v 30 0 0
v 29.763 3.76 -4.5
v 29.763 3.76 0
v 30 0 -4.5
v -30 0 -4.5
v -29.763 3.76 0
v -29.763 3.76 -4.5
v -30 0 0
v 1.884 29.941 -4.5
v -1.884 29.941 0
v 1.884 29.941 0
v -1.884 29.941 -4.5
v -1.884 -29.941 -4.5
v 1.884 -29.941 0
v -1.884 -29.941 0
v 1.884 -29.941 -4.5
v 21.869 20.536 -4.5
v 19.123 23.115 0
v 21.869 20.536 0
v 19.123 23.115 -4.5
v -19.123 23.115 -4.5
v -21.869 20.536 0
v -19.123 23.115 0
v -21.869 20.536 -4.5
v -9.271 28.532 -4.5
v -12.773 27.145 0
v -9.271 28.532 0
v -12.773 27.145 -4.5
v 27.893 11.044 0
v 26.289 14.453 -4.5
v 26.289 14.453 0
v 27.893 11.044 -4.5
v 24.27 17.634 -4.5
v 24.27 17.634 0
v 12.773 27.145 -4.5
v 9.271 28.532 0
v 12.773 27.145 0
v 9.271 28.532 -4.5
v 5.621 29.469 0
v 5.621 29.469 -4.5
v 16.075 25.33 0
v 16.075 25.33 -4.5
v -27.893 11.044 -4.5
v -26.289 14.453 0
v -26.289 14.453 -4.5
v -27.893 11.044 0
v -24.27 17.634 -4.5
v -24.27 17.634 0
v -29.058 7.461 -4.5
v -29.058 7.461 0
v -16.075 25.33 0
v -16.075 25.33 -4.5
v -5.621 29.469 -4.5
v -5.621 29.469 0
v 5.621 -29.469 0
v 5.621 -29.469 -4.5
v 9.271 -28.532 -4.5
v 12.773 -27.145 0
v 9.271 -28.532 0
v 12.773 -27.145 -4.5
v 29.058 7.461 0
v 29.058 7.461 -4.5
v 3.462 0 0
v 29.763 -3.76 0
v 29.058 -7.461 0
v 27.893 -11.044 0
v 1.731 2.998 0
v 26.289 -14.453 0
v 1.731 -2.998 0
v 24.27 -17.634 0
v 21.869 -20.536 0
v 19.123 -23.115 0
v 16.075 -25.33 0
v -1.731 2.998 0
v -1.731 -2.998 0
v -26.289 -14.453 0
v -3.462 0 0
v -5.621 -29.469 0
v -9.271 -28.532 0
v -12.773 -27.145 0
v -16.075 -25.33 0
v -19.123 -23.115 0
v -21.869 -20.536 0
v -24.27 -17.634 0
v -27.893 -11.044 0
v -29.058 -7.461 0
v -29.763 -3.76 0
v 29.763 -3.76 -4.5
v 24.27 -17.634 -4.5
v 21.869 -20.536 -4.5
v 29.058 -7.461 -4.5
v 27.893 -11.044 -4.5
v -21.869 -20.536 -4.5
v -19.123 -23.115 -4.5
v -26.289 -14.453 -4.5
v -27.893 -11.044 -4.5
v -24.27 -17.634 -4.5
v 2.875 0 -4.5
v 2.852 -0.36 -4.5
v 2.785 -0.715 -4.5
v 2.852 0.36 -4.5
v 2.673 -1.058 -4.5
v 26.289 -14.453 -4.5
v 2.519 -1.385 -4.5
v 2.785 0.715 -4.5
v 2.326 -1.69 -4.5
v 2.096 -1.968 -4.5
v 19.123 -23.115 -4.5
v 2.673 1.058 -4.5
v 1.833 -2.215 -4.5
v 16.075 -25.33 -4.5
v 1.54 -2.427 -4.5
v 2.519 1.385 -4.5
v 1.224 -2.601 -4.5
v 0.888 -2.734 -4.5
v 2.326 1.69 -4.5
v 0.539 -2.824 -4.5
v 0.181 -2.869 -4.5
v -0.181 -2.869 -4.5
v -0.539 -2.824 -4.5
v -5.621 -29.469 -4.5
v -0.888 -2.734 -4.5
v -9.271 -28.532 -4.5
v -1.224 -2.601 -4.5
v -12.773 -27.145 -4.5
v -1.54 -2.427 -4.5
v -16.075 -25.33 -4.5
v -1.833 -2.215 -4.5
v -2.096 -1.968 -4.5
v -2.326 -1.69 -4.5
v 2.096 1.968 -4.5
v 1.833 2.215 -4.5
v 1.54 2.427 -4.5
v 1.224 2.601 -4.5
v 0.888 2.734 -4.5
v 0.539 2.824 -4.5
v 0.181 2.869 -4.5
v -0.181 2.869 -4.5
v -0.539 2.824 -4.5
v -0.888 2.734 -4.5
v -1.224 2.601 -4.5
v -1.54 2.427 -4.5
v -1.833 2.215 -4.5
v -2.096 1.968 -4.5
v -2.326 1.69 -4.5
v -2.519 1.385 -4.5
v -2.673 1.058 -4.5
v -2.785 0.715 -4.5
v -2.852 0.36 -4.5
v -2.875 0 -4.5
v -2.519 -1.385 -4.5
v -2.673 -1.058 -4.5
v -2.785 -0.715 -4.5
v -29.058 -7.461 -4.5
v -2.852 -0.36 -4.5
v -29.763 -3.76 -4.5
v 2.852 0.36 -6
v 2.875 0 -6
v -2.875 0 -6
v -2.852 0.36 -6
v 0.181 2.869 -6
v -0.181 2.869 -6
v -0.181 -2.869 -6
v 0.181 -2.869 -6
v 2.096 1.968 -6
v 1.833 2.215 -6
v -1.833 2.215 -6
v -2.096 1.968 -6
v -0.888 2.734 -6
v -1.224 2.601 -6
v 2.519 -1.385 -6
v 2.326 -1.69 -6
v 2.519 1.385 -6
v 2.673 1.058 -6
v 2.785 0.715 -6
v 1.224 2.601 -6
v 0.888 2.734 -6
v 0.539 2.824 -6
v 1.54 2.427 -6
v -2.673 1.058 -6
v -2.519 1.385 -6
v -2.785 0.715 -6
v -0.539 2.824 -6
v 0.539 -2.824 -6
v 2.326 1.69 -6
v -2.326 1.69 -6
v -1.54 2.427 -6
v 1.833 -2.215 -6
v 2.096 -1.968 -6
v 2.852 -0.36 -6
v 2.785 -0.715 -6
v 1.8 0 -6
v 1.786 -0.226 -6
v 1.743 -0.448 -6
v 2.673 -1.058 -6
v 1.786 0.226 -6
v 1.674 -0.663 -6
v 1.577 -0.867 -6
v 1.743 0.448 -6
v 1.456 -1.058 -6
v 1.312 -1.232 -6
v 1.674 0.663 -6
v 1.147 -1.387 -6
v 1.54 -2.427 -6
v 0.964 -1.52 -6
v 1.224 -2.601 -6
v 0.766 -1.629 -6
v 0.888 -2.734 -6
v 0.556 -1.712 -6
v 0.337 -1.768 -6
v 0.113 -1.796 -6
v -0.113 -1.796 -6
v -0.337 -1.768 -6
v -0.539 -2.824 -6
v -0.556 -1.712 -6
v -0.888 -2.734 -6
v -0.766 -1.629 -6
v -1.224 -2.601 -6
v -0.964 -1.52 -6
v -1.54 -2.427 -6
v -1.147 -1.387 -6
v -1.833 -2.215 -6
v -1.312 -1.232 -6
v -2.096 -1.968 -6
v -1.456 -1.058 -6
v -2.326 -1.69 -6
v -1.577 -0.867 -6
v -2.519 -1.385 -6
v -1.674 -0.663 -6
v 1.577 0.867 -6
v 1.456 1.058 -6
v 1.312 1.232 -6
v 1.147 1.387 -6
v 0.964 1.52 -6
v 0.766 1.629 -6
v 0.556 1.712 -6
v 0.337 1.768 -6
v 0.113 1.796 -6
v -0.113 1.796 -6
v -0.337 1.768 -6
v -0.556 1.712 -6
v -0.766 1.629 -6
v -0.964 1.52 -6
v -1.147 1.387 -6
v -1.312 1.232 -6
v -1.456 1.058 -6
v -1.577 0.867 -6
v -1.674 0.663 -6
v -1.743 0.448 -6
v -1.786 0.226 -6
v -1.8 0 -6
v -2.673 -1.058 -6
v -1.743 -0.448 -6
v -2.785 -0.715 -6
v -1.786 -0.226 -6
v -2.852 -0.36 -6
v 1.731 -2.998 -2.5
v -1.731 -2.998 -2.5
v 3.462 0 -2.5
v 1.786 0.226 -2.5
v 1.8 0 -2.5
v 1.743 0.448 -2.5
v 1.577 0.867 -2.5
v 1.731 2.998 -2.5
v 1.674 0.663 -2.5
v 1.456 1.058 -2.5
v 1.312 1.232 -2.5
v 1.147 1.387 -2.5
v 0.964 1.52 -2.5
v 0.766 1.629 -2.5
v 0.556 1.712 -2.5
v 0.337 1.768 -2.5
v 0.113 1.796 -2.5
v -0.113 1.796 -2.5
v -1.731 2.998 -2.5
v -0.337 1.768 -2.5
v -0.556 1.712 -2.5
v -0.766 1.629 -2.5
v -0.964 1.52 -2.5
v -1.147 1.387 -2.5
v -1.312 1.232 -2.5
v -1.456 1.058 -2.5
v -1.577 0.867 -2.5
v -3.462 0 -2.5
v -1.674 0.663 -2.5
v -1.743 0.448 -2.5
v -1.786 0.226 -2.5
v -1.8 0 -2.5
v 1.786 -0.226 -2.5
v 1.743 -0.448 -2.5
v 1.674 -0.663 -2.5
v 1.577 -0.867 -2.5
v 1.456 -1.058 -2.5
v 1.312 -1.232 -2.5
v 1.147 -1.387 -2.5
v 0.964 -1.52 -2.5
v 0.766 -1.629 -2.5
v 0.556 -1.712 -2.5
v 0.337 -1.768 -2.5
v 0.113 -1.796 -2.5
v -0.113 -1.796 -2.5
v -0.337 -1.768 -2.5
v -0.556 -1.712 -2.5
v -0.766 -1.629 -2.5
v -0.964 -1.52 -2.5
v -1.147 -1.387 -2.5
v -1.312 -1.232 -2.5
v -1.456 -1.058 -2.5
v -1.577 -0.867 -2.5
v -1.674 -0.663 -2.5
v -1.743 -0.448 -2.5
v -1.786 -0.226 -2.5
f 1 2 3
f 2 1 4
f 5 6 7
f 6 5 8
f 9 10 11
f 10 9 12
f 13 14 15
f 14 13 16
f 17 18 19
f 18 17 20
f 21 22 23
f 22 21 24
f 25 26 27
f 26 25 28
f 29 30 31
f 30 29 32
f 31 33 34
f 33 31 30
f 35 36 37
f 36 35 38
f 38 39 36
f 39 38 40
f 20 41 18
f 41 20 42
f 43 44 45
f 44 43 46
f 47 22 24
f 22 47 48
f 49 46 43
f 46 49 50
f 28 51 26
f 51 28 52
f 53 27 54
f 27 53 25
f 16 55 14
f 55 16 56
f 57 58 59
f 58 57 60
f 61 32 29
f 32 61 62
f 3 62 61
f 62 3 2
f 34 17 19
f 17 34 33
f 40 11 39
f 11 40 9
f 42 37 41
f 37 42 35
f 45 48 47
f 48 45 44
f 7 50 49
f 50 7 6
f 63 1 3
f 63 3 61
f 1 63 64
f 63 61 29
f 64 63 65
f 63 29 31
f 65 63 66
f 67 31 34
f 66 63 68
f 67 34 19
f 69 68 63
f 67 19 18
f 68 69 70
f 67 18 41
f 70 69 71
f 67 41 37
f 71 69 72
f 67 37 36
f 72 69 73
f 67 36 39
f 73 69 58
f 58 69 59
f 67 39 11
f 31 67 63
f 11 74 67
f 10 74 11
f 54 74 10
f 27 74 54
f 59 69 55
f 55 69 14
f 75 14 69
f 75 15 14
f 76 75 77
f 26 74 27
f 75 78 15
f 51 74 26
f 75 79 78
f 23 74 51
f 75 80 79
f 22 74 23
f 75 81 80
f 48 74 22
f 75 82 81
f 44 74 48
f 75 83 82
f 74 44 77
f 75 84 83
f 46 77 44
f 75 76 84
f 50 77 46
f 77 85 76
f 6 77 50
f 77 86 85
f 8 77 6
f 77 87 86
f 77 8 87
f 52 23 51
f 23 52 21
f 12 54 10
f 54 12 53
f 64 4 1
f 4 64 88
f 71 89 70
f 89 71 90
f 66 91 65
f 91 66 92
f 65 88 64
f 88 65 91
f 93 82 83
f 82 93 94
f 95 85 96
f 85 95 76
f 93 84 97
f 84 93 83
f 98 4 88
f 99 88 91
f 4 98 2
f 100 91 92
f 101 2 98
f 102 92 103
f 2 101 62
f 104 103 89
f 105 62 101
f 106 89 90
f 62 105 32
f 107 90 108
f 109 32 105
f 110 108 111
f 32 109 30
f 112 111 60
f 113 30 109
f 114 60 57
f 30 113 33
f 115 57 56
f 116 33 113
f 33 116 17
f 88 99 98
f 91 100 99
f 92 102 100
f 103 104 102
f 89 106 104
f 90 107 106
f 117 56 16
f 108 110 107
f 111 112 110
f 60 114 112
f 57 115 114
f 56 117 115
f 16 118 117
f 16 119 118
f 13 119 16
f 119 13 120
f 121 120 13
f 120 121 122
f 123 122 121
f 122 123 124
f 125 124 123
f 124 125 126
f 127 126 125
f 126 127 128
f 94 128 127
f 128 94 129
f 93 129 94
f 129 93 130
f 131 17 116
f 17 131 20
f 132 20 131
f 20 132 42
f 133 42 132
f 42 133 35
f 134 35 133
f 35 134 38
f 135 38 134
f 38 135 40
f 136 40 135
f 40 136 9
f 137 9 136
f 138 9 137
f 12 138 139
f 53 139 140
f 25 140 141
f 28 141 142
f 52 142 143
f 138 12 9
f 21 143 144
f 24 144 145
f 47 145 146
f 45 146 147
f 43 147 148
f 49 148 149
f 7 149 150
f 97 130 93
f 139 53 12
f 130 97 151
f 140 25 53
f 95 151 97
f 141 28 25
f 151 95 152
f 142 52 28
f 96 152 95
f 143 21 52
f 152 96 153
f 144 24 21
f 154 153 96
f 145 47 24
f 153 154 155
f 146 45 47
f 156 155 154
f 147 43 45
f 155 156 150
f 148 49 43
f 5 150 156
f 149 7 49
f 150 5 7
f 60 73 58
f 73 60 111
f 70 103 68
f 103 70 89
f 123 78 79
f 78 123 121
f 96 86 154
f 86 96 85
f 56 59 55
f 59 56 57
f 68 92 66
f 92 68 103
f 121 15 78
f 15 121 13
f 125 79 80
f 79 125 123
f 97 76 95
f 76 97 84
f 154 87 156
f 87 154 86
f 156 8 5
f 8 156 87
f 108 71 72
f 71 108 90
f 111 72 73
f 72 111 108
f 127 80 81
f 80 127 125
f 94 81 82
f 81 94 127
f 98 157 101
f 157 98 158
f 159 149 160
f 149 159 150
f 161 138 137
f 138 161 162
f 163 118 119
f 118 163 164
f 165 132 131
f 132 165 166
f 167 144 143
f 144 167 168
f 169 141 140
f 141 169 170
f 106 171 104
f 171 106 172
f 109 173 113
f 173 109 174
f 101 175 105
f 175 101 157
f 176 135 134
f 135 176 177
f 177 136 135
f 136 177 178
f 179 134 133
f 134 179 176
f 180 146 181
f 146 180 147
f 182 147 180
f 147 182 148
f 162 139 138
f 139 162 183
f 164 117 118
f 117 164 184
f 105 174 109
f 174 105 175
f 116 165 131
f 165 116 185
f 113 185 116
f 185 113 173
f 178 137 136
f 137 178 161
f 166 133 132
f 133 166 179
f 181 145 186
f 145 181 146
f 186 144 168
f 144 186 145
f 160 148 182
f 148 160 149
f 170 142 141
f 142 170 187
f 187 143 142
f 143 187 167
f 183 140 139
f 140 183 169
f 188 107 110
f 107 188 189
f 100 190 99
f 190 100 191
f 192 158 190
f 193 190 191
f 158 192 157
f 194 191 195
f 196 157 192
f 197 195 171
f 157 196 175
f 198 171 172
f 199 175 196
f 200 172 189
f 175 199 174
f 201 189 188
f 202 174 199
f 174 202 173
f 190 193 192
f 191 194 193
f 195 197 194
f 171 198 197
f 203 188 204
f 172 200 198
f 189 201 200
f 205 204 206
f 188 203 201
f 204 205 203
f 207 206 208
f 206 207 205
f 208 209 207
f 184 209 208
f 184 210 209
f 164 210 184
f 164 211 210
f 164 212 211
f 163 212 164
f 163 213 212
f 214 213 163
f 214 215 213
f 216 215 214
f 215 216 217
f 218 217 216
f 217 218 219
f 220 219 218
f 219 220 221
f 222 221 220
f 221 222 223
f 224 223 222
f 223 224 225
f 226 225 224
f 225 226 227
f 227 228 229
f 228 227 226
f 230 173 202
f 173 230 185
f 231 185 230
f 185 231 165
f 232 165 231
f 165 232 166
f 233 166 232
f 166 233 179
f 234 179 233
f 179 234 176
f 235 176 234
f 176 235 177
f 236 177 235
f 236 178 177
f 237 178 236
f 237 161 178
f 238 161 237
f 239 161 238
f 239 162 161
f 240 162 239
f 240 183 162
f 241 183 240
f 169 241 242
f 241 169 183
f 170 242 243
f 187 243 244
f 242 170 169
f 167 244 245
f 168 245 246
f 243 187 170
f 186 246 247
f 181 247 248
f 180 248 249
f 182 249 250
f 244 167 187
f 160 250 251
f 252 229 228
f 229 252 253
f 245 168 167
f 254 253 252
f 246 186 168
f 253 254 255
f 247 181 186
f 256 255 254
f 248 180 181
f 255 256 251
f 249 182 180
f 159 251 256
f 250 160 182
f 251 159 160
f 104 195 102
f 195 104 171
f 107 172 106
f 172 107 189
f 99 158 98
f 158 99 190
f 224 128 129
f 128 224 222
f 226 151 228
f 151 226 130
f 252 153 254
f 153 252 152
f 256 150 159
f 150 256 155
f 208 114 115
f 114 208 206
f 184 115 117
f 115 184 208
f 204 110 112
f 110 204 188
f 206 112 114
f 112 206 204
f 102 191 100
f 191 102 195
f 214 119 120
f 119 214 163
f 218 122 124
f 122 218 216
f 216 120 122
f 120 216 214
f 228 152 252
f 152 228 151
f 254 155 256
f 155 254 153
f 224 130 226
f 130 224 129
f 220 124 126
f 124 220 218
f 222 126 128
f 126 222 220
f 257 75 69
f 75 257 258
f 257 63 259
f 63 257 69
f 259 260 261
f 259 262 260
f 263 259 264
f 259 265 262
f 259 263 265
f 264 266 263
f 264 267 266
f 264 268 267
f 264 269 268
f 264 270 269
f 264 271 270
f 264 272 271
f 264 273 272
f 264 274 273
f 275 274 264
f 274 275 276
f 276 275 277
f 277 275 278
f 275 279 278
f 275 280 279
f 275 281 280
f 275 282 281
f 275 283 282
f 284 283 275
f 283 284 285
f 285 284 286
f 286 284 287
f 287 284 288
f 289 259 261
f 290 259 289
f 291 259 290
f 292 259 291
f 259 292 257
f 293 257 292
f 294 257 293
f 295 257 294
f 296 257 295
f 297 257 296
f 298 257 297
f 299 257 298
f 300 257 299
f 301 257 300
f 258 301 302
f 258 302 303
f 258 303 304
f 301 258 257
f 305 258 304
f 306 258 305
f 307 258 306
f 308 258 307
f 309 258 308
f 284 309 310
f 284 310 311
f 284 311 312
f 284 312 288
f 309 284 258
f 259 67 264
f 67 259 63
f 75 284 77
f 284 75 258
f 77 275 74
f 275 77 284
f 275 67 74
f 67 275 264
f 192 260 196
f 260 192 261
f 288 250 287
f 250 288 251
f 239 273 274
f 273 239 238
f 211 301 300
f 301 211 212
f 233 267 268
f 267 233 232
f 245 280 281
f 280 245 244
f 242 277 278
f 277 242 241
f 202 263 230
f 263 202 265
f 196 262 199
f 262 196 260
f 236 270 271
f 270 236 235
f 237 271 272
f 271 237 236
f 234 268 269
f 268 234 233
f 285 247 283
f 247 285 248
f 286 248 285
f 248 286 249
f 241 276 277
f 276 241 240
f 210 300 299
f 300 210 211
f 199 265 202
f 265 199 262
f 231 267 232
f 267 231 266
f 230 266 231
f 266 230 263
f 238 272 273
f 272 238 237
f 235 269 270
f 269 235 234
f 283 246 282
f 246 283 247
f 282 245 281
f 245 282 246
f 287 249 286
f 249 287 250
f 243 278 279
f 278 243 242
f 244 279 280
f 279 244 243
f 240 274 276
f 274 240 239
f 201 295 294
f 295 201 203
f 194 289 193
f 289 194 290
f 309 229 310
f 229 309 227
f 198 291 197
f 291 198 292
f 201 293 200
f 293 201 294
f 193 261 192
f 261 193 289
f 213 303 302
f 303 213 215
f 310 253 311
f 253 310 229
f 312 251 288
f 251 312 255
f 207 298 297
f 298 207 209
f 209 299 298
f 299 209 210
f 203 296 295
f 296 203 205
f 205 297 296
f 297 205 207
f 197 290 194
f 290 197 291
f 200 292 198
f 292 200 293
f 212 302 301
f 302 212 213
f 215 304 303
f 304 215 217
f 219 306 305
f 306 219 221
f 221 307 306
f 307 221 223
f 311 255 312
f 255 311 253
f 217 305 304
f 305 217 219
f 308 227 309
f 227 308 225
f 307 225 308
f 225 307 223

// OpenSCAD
$fn = 50;


difference() {
	union() {
		translate(v = [0, 0, -4.5000000000]) {
			cylinder(h = 4.5000000000, r = 30.0000000000);
		}
		translate(v = [0, 0, -6.0000000000]) {
			cylinder(h = 6, r = 2.8750000000);
		}
	}
	union() {
		translate(v = [0, 0, 0]) {
			rotate(a = [0, 0, 0]) {
				difference() {
					union() {
						translate(v = [0, 0, -2.5000000000]) {
							linear_extrude(height = 2.5000000000) {
								polygon(points = [[3.4620000000, 0.0000000000], [1.7310000000, 2.9981799479], [-1.7310000000, 2.9981799479], [-3.4620000000, 0.0000000000], [-1.7310000000, -2.9981799479], [1.7310000000, -2.9981799479]]);
							}
						}
					}
					union();
				}
			}
		}
		#translate(v = [0, 0, -100.0000000000]) {
			cylinder(h = 200, r = 1.8000000000);
		}
	}
}
